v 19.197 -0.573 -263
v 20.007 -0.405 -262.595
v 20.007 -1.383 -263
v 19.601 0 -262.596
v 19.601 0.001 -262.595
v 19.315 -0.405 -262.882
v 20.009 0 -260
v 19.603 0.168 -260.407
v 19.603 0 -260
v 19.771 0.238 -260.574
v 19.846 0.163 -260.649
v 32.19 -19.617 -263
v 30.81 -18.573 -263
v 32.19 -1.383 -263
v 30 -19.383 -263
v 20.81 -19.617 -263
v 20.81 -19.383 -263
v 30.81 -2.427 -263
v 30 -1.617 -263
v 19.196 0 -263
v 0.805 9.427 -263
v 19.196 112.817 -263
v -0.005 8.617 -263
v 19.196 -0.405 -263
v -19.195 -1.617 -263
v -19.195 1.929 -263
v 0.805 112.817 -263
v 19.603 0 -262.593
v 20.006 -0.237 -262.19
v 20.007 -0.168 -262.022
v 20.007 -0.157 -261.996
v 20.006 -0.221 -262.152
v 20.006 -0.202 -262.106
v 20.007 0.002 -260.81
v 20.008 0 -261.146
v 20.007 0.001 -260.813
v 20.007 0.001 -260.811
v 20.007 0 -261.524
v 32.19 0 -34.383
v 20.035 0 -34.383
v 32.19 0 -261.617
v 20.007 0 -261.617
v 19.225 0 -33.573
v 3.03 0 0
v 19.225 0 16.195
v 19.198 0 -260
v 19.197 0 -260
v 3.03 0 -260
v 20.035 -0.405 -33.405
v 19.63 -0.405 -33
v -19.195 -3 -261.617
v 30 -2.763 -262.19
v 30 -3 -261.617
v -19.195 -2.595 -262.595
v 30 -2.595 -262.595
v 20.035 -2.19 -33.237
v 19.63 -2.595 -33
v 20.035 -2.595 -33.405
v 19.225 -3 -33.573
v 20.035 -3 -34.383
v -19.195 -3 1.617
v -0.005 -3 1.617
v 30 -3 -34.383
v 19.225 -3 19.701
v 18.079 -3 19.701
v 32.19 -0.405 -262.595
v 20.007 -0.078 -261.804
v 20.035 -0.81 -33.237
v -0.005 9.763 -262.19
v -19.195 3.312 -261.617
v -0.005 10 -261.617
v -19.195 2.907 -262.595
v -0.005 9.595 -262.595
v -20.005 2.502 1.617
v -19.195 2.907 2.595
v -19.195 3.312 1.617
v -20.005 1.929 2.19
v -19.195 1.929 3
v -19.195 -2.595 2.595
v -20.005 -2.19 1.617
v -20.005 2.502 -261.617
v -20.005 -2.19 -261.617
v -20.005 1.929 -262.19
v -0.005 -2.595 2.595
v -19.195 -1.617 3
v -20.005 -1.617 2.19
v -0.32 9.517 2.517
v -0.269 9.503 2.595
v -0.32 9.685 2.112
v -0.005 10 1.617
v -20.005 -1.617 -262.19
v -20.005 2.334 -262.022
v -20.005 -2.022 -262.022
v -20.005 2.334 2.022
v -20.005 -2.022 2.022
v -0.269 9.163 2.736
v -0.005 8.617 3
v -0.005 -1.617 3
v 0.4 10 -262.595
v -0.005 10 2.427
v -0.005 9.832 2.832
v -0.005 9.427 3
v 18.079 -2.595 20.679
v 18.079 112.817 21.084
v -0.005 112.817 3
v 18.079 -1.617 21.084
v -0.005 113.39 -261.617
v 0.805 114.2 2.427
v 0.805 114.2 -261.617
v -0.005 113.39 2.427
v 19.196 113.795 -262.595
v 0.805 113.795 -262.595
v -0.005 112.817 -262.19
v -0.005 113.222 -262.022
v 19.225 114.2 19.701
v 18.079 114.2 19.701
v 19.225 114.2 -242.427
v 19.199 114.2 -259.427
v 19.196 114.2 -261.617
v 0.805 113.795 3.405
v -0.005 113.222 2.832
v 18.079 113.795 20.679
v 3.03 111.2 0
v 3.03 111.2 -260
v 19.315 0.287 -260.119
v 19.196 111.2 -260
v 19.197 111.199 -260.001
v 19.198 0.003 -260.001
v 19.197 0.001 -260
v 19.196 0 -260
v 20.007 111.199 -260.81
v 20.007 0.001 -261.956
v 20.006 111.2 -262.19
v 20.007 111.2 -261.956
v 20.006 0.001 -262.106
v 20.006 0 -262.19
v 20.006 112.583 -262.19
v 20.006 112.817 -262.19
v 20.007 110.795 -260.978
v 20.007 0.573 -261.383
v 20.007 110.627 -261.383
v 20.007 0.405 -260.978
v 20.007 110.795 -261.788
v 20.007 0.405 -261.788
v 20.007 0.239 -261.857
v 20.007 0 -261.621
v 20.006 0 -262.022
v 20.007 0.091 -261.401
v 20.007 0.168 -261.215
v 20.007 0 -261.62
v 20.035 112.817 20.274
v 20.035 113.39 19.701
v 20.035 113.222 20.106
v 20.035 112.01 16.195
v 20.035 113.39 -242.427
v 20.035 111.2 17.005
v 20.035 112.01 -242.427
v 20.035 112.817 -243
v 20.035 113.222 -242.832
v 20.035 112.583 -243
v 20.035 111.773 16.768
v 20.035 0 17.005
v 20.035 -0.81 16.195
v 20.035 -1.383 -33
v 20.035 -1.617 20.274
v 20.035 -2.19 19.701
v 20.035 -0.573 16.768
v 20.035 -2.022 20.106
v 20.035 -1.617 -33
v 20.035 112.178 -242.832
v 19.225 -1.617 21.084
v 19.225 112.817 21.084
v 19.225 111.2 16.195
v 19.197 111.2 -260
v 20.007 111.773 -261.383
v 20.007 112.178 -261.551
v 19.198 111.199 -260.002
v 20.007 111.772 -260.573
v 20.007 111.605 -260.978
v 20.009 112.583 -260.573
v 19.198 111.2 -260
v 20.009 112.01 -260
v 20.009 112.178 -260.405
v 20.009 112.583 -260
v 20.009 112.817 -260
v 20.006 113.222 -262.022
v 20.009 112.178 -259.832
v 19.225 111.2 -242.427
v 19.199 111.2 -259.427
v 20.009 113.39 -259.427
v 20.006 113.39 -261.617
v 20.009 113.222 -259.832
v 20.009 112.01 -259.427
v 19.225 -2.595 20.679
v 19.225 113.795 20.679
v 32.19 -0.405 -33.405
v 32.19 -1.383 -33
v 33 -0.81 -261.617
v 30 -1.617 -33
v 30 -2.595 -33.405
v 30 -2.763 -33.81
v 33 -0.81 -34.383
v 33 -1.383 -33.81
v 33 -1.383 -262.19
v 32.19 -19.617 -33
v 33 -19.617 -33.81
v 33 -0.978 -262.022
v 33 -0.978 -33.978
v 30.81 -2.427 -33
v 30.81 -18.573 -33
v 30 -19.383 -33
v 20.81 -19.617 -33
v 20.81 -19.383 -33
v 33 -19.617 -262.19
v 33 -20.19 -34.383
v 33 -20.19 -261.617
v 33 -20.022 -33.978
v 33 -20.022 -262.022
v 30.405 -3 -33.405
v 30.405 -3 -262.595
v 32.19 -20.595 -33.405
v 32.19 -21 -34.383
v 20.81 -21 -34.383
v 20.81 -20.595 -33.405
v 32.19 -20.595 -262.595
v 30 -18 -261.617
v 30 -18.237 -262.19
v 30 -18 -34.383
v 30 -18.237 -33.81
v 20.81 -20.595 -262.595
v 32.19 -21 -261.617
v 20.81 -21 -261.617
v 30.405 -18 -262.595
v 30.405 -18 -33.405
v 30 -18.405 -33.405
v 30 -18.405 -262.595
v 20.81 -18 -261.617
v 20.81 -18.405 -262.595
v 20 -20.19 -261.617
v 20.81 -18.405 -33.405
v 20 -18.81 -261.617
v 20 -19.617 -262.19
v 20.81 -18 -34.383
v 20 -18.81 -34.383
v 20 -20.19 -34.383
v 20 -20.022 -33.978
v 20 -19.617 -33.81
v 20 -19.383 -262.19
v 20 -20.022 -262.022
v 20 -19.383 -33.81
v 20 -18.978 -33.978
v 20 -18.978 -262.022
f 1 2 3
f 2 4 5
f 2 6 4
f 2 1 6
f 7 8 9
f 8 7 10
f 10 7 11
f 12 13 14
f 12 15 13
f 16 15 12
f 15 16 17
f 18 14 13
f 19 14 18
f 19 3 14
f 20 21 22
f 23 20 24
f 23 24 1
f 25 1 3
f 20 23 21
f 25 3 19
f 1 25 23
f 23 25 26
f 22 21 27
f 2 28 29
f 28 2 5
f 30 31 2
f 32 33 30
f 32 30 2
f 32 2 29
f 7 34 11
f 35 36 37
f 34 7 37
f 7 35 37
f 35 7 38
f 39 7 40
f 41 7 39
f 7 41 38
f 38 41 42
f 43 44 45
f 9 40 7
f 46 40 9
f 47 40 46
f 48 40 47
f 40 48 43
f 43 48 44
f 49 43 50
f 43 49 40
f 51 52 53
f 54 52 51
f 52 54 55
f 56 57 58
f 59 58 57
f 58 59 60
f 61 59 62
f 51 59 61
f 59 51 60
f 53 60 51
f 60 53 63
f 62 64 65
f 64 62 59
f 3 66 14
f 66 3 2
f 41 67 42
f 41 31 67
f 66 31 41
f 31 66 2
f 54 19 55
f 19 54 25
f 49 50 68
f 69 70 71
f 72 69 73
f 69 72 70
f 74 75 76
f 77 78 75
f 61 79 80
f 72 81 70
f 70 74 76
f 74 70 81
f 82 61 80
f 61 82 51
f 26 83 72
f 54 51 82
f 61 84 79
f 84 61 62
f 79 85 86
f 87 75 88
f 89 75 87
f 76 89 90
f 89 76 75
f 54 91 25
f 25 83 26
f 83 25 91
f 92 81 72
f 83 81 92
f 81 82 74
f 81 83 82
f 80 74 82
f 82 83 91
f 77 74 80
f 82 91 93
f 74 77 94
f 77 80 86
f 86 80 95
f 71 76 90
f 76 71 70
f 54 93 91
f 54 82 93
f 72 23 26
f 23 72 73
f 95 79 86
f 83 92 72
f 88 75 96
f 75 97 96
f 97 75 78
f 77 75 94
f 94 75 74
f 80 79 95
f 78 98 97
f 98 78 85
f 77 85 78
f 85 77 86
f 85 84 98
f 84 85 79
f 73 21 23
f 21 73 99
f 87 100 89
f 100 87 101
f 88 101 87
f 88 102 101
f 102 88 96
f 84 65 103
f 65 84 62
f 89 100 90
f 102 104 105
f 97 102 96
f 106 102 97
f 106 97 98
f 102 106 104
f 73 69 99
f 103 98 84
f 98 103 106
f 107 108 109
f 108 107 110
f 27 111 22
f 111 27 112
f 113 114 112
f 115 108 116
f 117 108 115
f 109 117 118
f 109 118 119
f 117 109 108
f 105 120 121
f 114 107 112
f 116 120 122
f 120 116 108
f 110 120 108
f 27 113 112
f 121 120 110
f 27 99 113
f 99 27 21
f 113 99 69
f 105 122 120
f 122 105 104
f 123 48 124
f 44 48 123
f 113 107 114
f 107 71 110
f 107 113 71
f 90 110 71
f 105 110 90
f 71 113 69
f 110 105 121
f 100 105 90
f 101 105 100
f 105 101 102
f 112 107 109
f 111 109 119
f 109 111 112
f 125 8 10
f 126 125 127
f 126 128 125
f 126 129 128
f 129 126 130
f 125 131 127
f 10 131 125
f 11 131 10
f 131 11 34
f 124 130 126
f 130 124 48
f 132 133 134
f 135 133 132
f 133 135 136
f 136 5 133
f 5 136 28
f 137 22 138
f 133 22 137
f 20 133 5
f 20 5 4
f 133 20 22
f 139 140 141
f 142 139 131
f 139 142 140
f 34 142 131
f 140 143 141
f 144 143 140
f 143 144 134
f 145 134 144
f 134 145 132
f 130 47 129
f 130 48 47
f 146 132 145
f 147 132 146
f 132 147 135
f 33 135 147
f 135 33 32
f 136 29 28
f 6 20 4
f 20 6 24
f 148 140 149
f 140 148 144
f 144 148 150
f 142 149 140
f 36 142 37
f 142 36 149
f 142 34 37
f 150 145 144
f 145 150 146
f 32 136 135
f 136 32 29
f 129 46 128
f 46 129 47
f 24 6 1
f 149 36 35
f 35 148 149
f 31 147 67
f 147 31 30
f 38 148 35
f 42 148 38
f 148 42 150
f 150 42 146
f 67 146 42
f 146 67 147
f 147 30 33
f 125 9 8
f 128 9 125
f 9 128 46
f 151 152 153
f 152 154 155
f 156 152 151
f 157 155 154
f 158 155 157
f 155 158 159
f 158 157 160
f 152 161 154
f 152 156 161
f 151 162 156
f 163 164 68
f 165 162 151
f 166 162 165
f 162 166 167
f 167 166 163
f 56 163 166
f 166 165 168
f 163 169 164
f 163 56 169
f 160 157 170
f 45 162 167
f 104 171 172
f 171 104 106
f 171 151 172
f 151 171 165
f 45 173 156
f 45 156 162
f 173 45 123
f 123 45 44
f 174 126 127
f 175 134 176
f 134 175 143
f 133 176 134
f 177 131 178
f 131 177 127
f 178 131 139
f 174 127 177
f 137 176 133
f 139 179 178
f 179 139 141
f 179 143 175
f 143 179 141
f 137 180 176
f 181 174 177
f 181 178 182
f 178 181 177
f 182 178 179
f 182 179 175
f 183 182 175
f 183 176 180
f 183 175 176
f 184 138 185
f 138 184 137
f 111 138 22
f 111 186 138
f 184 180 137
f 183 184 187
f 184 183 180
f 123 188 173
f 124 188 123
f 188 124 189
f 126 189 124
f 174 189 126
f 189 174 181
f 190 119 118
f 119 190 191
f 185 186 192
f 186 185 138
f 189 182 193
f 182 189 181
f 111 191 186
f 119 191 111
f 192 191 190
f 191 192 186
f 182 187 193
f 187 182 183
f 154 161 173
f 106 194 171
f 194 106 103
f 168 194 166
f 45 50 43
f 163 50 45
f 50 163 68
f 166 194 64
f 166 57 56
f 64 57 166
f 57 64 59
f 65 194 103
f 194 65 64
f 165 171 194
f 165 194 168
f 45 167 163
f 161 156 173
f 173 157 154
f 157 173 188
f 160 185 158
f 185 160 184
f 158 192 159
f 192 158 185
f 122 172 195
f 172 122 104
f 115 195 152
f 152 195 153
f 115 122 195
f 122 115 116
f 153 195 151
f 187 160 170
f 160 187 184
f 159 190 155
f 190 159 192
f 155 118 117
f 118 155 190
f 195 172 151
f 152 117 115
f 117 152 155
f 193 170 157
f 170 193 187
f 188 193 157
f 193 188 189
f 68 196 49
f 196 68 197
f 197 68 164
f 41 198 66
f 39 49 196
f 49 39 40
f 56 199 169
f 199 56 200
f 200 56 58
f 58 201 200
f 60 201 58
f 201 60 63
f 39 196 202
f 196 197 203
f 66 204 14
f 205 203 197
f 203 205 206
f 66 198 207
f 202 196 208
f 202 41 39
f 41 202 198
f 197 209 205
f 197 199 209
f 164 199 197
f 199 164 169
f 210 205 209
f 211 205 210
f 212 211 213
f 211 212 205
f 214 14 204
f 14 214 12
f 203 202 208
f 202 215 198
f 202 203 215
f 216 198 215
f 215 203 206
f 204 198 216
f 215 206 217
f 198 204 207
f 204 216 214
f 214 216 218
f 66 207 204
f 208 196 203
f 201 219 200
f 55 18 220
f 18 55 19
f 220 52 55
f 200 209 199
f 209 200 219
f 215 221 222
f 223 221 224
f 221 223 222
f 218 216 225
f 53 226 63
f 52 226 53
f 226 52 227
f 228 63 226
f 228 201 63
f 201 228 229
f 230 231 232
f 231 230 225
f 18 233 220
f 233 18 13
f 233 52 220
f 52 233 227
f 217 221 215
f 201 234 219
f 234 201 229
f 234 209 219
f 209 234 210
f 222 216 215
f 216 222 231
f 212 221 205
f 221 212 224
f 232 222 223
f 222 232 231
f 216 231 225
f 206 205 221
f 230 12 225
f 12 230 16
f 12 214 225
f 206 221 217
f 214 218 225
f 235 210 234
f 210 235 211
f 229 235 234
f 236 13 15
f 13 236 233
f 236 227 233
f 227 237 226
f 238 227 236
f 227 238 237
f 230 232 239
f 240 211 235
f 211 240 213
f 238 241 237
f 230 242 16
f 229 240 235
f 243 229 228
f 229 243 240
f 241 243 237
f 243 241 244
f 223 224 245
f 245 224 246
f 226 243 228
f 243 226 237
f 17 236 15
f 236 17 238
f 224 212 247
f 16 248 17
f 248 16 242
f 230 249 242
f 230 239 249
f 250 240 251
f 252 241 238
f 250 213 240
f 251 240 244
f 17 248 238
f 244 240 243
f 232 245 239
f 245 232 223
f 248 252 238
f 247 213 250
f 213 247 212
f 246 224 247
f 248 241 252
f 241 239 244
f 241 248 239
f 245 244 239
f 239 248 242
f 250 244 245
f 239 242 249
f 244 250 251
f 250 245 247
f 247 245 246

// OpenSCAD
// file: ../chamferer.scad
INFINITY = 10000;
ATOM = .01;

module chamfer_tool(r, fn, tool,
                    ax, ay, az,
                    ax2, ay2, az2,
                    ax3, ay3, az3) {
    rotate([ax3, ay3, az3])
    rotate([ax2, ay2, az2])
    rotate([ax, ay, az]) {
        if (tool=="sphere") {
            sphere(r, $fn=fn);
        }
        else if (tool=="hemisphere-up") {
            intersection() {
                sphere(r, $fn=fn);
                cylinder(r=r*2, h=r*2);
            }
        }
        else if (tool=="hemisphere-down") {
            difference() {
                sphere(r, $fn=fn);
                cylinder(r=r*2, h=r*2);
            }
        }
        else if (tool=="cone") {
            cylinder(r, r, 0, $fn=fn);
            scale([1, 1, -1])
            cylinder(r, r, 0, $fn=fn);
        }
        else if (tool=="cone-up") {
            cylinder(r, r, 0, $fn=fn, center=true);
        }
        else if (tool=="cone-down") {
            scale([1, 1, -1])
            cylinder(r, r, 0, $fn=fn, center=true);
        }
        else if (tool=="octahedron") {
            resize([r*2, r*2, r*2]) {
                cylinder(r, r, 0, $fn=4);
                scale([1, 1, -1])
                cylinder(r, r, 0, $fn=4);
            }
        }
        else if (tool=="pyramid") {
            resize([r*2, r*2, r*2]) {
                cylinder(r, r, 0, center=true, $fn=4);
            }
        }
        else if (tool=="rpyramid") {
            resize([r*2, r*2, r*2]) {
                cylinder(r, 0, r, center=true, $fn=4);
            }
        }
        else if (tool=="cylinder-z" || tool=="cylinder") {
            cylinder(r=r, h=ATOM, $fn=fn, center=true);
        }
        else if (tool=="cylinder-x") {
            rotate([0, 90, 0])
            cylinder(r=r, h=ATOM, $fn=fn, center=true);
        }
        else if (tool=="cylinder-y") {
            rotate([90, 0, 0])
            cylinder(r=r, h=ATOM, $fn=fn, center=true);
        }
        else if (tool=="cube") {
            cube(r*2, center=true);
        }
        else if (tool=="plate-y") {
            cube([r*2, ATOM, r*2], center=true);
        }
        else if (tool=="plate-z") {
            cube([r*2, r*2, ATOM], center=true);
        }
        else {
            assert(false, str("Unknown tool: ", tool));
        }
    }
}

module shrinker(r, tool, fn,
                ax, ay, az,
                ax2, ay2, az2,
                ax3, ay3, az3) {
    if (!r) {
        children();
    }
    else {
        // re-invert+grow = fillet
        difference() {
            cube(INFINITY/2, center=true);

            // invert+grow = carve
            minkowski() {
                difference() {
                    cube(INFINITY, center=true);
                    children();
                }
                //cube(r, center=true);
                chamfer_tool(r, fn, tool,
                             ax, ay, az,
                             ax2, ay2, az2,
                             ax3, ay3, az3);
            }
        }
    }
}

module chamferer(r, tool="sphere", fn=8, shrink=true, grow=true,
                 ax=0, ay=0, az=0,
                 ax2=0, ay2=0, az2=0,
                 ax3=0, ay3=0, az3=0,
) {
    if (!r) {
        children();
    }
    else {
        minkowski() {
            if (shrink)
                shrinker(r, tool, fn,
                         ax, ay, az,
                         ax2, ay2, az2,
                         ax3, ay3, az3) children();
            else
                children();
            
            if (grow)
                chamfer_tool(r, fn, tool,
                             ax, ay, az,
                             ax2, ay2, az2,
                             ax3, ay3, az3);
        }
    }
}



cube(50);

translate([70, 0, 0])
chamferer(5, "hemisphere-up", $preview? 6*4 : 30)
//shrinker(5, "sphere", $preview? 6*4 : 30)
cube(50);

translate([70*2, 0, 0])
chamferer(5, "octahedron", grow=false)
cube(50);
// main file
use <../chamferer.scad>

//                              Not yet re-printed
LENGTH = 260;
WIDTH  = 110                    +0.5 +.7;
HEIGHT =  20;
DEPTH  =  20                    -0;

TH     =   3;

GW     =  15;
GH     =  10;
GL     = LENGTH -TH*2           -30;
GZ     =  10                    *0;

ATOM = 0.03;


module basis() {
    hull() {
        cube([LENGTH, WIDTH, HEIGHT]);

        translate([-HEIGHT, 0, HEIGHT])
        cube([LENGTH, WIDTH, ATOM]);
    }
}

module tray() {
    chamferer($preview? 0 : TH*.499) {
        difference() {
            chamferer(TH, "plate-z", shrink=false) {
                basis();
                hull() {
                    cube([LENGTH, 14/2, ATOM]);
                    translate([0, 0, -DEPTH]) cube([LENGTH, ATOM, ATOM]);
                }
            }
            
            translate([0, 0, TH+ATOM]) basis();
        }

        translate([LENGTH-GL, -GW-TH, HEIGHT+GZ]) {
            difference() {
                chamferer(TH, "cube", shrink=false)
                translate([0, 0, TH])
                cube([GL, GW, GH-TH]);

                translate([-GL/2, 0, -ATOM])
                cube([GL*2, GW, GH+ATOM]);
            }
            
            translate([-TH, GW, -GZ])
            cube([GL+TH*2, TH, GZ]);
        }
    }
}

rotate([0, 90, 0])
intersection() {
    tray();
    //cube(250, center=true);
}
